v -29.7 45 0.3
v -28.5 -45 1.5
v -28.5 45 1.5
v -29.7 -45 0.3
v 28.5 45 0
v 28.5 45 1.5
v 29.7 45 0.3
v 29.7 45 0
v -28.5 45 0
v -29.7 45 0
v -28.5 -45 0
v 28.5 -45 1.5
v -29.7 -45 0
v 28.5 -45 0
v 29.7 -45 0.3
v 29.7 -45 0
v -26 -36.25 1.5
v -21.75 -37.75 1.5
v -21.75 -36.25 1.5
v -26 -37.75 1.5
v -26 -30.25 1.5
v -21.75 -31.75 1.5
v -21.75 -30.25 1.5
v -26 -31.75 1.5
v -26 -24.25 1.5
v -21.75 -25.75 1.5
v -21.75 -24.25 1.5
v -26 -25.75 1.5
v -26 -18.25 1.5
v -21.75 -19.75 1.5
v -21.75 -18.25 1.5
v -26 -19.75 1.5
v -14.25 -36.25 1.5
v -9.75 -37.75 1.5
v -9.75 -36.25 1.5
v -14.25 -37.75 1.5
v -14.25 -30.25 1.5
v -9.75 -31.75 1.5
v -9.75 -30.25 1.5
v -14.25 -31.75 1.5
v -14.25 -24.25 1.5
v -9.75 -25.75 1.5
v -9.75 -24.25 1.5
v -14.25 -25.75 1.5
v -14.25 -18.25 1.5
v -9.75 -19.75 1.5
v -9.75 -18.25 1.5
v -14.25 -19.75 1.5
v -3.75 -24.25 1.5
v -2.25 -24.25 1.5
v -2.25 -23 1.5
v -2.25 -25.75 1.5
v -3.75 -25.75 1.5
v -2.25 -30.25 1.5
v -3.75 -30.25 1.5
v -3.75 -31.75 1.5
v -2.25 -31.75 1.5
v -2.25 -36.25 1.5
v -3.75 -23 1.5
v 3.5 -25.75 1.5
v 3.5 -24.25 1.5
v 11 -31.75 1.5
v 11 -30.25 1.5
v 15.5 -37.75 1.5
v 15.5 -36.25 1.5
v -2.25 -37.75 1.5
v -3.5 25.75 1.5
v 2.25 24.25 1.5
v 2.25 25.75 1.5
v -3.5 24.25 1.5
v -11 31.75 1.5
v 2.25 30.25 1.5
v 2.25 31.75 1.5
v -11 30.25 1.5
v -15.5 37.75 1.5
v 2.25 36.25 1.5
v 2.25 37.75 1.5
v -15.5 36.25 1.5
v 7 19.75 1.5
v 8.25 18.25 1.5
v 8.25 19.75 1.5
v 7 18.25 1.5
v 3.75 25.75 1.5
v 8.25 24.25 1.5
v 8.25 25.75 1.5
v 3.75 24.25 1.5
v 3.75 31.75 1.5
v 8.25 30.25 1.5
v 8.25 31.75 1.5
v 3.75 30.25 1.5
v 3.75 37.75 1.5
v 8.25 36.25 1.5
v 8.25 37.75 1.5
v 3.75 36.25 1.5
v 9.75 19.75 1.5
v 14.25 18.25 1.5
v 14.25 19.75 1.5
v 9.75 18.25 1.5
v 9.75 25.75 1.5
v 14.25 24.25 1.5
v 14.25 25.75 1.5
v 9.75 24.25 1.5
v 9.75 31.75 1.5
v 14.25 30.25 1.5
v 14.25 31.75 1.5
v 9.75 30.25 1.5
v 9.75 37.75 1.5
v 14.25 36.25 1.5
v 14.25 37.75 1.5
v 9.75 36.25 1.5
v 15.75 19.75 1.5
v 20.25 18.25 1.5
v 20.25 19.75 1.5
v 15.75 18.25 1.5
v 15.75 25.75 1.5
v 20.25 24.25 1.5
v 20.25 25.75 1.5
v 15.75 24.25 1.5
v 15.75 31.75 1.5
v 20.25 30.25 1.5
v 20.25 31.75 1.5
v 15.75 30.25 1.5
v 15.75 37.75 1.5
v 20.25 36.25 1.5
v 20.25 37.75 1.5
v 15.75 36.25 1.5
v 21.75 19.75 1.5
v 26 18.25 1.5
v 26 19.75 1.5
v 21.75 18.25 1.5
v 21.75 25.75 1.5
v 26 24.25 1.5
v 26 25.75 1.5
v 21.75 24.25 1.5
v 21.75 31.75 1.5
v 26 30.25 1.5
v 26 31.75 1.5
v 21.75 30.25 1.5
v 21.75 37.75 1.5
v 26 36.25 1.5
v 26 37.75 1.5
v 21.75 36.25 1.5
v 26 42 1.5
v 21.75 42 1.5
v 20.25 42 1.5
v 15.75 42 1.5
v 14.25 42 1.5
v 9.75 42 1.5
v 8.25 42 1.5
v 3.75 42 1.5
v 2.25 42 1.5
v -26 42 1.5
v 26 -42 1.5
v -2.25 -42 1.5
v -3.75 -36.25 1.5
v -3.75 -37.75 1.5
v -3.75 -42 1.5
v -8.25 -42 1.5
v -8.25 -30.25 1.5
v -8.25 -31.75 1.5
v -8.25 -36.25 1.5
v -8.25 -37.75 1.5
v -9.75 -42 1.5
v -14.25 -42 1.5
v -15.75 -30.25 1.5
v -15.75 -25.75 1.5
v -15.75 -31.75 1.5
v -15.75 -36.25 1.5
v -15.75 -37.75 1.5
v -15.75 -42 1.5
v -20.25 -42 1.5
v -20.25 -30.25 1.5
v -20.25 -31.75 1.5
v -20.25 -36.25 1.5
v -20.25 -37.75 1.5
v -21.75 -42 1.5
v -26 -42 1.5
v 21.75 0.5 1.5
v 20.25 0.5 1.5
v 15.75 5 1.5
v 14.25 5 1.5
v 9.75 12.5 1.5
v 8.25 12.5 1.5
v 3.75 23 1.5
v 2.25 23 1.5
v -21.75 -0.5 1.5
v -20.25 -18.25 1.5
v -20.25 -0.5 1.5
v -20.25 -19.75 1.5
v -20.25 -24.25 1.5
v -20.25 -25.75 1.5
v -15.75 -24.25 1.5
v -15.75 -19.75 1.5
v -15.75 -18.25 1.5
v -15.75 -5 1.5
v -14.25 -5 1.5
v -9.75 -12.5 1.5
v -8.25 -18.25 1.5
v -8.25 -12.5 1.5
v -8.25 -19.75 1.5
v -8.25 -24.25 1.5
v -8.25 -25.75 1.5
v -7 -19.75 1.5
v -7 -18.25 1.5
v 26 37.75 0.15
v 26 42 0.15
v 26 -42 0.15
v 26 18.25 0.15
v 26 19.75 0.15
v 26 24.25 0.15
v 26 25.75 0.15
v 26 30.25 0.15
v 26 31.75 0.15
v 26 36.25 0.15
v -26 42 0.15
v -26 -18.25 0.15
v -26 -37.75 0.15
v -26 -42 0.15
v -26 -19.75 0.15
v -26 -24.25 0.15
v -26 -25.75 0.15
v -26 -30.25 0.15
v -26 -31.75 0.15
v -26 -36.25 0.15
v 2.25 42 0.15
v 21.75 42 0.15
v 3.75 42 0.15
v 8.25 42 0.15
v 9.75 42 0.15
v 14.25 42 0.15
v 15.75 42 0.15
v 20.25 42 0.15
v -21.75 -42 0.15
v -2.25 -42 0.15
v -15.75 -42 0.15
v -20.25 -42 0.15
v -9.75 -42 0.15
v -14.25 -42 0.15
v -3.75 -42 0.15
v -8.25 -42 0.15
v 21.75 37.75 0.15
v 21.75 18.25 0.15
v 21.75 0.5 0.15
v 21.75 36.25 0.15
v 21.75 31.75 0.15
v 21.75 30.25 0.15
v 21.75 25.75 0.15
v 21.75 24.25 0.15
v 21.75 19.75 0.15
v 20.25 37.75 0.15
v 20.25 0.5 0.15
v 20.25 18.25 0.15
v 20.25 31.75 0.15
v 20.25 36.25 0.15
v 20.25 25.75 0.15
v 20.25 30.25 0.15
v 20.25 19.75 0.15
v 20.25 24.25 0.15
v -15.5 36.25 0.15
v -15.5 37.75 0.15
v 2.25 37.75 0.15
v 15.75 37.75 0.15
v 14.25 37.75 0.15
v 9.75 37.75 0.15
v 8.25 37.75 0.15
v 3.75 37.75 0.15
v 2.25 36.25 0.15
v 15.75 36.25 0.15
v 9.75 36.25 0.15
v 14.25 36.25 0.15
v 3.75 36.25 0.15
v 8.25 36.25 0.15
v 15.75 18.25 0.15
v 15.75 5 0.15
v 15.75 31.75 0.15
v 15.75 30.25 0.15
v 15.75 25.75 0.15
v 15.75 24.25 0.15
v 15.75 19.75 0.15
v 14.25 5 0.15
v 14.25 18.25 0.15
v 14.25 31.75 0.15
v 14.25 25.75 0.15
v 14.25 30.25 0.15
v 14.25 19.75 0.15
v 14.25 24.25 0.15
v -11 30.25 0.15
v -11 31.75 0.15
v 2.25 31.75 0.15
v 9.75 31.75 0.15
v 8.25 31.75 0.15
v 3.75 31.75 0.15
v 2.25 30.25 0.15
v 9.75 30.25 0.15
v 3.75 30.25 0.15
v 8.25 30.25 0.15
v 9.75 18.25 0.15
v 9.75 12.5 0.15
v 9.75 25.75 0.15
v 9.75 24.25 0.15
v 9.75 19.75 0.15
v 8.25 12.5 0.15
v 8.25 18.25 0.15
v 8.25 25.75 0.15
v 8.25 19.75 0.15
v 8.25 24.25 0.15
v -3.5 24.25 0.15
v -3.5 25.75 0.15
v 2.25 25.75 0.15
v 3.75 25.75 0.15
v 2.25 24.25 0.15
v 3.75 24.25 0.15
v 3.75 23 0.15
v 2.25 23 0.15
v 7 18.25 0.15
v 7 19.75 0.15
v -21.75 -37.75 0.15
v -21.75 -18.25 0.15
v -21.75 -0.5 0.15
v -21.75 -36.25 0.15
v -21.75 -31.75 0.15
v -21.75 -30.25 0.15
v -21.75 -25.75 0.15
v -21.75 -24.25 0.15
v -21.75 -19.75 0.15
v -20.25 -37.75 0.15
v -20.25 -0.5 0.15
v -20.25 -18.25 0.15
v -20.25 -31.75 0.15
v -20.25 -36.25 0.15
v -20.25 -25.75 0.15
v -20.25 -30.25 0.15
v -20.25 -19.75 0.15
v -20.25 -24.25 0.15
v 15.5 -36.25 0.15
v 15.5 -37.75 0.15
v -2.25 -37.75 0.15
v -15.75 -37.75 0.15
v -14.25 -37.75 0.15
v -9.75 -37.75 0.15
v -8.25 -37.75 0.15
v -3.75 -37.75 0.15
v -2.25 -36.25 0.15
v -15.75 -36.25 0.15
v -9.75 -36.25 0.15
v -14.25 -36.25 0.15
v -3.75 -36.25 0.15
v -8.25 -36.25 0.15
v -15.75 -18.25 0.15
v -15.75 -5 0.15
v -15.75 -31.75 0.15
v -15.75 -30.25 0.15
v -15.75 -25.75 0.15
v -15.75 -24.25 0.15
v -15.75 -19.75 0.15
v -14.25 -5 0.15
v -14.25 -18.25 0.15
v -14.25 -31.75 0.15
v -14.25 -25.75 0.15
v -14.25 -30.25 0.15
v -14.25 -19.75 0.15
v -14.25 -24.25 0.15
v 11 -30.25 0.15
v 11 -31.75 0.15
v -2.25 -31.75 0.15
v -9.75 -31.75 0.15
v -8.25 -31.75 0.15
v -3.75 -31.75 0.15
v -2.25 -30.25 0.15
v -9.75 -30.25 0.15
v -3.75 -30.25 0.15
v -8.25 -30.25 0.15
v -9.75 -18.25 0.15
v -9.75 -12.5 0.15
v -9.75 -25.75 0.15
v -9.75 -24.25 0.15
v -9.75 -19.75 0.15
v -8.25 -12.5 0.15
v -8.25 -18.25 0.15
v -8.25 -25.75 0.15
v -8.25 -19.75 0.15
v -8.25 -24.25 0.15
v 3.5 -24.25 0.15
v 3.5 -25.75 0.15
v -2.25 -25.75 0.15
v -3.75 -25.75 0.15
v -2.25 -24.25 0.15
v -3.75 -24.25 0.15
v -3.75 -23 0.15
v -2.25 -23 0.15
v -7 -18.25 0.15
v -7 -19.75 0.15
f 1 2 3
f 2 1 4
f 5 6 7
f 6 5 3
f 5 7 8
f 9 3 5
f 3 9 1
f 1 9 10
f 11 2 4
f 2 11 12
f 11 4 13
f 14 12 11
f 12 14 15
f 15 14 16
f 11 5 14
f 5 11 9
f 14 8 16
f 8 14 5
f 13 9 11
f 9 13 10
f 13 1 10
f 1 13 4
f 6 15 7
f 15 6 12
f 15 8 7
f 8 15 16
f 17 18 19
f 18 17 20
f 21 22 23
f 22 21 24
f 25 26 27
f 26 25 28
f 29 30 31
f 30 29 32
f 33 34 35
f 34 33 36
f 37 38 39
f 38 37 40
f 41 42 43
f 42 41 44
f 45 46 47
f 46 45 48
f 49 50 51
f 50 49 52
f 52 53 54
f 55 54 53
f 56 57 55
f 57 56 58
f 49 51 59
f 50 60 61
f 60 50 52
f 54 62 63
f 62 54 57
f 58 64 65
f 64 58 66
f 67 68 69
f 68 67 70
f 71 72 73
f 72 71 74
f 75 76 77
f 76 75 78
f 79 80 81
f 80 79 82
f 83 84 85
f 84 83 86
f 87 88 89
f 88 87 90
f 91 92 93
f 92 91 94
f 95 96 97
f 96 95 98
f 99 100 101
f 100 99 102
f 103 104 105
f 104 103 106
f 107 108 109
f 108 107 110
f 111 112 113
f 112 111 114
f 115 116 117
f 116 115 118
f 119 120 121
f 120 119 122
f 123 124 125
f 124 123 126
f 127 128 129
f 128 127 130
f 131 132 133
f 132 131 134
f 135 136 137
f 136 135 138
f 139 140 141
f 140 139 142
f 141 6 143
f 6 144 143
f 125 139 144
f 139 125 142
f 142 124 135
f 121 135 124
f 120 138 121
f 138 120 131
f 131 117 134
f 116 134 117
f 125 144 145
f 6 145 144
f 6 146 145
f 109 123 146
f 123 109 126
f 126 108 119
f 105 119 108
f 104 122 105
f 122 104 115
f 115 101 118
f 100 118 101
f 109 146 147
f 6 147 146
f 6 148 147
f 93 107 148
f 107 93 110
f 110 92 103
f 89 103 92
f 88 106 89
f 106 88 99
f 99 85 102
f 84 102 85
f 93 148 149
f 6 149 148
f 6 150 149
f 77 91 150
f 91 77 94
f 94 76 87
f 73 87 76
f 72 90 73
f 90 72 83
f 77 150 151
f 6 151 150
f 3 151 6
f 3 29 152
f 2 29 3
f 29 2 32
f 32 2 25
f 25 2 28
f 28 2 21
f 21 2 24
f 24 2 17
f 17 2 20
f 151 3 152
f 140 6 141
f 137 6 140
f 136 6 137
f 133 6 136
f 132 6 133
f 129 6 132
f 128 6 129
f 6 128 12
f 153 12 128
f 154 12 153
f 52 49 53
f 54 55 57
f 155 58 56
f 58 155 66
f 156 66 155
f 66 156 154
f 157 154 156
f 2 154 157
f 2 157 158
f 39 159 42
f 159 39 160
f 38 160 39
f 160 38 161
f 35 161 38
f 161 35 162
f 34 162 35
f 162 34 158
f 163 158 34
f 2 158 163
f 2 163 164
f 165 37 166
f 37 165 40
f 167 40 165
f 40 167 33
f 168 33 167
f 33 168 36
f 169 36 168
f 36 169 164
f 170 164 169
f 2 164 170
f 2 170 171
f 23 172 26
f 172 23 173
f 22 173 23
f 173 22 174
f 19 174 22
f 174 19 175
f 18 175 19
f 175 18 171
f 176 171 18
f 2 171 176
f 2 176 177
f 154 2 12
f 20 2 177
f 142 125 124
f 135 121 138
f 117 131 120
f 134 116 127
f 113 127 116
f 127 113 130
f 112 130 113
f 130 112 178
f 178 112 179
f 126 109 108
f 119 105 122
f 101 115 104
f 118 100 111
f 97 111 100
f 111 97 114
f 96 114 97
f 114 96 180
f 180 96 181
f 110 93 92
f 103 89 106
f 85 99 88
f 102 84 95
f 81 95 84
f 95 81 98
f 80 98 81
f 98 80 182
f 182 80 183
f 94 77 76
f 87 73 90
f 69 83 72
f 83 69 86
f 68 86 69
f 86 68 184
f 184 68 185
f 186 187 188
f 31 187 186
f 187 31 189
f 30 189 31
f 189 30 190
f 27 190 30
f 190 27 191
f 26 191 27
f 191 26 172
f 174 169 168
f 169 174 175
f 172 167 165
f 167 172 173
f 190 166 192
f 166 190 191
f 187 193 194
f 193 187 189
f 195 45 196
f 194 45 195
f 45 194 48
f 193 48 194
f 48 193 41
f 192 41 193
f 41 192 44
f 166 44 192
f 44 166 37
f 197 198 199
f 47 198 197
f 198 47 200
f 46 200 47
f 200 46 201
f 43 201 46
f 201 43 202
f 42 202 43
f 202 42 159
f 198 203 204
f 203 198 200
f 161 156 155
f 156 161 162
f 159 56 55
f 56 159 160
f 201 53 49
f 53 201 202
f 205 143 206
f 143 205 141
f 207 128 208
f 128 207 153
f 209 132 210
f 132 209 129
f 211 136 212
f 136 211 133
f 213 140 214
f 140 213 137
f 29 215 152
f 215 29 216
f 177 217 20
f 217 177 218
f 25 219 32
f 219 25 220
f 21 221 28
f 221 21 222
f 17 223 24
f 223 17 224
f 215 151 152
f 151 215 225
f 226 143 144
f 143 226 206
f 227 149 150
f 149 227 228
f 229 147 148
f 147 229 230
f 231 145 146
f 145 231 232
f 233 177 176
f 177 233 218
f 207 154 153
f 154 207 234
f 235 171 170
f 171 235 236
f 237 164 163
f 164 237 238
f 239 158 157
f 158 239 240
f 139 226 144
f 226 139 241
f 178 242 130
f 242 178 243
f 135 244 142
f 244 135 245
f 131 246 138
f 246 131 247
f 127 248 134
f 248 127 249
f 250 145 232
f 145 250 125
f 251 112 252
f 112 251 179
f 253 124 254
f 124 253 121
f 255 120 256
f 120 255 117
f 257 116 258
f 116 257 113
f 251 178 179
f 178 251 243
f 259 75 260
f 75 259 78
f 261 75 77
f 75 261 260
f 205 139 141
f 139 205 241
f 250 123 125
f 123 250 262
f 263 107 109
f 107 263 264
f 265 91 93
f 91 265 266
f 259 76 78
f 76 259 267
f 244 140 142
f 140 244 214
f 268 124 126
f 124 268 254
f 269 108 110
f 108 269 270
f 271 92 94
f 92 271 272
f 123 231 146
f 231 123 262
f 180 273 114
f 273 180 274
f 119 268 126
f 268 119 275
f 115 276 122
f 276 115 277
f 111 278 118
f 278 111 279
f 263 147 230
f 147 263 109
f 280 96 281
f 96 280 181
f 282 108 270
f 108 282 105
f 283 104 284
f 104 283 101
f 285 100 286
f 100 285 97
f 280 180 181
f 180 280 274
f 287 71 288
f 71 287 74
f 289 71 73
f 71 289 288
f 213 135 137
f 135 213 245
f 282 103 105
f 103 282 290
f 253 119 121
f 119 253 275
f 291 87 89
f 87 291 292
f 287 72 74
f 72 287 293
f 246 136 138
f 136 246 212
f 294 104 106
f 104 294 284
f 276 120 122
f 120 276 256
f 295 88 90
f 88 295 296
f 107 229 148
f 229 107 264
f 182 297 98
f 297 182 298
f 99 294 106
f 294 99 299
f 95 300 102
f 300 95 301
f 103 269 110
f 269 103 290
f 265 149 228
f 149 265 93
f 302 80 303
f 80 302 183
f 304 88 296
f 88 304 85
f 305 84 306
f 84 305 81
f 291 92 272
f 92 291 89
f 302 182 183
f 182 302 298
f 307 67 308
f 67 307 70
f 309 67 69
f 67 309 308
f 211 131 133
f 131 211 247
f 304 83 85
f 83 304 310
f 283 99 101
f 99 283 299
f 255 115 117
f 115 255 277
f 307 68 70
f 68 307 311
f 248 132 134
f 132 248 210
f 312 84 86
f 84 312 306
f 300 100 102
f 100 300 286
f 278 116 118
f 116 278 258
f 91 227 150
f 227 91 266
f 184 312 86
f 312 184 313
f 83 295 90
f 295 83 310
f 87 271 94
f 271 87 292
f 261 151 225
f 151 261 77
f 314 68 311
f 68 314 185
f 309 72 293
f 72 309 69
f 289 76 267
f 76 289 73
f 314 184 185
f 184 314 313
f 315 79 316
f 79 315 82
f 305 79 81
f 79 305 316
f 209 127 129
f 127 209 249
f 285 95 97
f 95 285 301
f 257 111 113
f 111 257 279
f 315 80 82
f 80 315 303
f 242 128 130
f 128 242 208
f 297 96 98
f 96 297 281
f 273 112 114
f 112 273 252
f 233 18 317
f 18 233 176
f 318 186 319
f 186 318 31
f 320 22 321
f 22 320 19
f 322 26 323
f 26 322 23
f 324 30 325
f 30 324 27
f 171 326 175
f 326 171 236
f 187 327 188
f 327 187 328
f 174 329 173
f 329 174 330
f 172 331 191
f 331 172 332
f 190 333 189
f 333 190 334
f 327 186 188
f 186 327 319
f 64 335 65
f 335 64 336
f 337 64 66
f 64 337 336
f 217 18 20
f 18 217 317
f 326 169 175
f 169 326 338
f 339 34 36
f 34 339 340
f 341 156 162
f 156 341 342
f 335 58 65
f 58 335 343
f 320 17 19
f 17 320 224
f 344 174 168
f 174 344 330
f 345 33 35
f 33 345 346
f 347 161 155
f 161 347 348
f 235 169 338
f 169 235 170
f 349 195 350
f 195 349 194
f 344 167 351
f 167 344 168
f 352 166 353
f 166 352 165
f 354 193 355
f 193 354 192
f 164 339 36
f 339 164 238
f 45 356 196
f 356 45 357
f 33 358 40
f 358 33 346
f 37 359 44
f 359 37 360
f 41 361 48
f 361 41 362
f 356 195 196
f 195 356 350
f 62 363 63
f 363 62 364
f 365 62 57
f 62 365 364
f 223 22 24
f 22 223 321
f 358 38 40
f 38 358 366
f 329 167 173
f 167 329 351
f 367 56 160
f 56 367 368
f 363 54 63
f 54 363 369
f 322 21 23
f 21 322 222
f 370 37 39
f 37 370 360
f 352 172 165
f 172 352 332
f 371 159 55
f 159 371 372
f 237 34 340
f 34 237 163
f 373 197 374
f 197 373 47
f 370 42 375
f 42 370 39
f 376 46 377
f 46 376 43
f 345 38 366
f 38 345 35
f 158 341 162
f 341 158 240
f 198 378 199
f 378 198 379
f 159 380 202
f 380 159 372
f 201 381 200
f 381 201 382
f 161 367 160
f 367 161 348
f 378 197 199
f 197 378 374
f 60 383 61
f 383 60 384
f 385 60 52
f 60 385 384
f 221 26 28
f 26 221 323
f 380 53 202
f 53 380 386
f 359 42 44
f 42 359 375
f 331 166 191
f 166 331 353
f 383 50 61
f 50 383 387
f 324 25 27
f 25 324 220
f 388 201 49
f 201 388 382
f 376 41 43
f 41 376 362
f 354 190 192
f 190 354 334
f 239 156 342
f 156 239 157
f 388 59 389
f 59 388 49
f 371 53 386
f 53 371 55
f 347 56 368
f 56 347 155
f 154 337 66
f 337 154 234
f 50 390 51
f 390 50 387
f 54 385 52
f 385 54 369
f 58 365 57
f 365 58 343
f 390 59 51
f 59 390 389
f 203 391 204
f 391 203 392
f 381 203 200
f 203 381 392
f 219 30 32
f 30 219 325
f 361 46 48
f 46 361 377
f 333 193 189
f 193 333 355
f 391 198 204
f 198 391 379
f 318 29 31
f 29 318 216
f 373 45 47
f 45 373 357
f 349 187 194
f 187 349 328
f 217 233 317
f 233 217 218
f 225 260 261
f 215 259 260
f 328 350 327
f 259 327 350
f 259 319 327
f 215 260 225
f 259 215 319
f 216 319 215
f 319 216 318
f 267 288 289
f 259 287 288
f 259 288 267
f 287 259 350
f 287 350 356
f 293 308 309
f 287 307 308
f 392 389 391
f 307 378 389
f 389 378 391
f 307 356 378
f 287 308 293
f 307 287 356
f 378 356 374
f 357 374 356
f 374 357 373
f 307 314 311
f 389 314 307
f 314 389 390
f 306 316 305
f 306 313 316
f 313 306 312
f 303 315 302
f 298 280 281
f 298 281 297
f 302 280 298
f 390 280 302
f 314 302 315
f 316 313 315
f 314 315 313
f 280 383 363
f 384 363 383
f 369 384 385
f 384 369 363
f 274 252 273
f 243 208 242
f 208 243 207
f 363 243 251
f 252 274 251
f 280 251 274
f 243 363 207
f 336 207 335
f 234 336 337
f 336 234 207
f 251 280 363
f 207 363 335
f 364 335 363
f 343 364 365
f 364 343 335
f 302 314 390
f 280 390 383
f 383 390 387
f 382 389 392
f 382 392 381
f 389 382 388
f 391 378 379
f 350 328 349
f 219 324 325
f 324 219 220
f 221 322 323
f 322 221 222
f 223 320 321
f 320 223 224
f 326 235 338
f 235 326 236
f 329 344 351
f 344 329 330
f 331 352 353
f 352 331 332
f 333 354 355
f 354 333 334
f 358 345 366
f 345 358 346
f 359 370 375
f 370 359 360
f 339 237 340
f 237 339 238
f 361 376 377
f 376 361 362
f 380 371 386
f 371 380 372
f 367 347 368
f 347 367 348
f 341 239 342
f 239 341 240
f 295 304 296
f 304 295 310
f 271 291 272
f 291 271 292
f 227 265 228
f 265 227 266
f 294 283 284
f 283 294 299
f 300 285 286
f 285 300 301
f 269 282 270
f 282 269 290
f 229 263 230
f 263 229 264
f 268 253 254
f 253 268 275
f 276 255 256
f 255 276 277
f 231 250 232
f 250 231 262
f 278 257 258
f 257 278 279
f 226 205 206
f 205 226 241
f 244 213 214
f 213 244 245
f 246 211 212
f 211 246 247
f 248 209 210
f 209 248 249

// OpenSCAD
W=64;
W2=100;
H=90;
T=1.5;
B=4;
Q=7;
H1=7;
HR=12;

color("white")
backing();
color("brown")
theactualpanel();

module backing() {
    cube_center([W-H1,H,0.15]);
}

module theactualpanel() {
    
    // the pointed edges that go into groove
    for(s=[-1:2:1])
        scale([s,1,1])
        translate([(W-H1)/2,0,])
        difference() {
            rotate([0,45,0])
            cube([1.5*sqrt(2),H,1.5*sqrt(2)],center=true);
            translate([0,0,-1.5])
            cube([3,H+1,3],center=true);
            translate([2.7,0,0])
            cube([3,H+1,3],center=true);
            translate([-2.7,0,0])
            cube([3,H+1,3],center=true);
    }
    
    intersection() {
        // clips the following to dimensions just in case
        cube_center([W-H1,H,1.5]);
        // of this:
        union() {
            // border
            difference() {
                cube_center([W,H,1.5]);
                translate([0,0,-1])
                cube_center([W-3*B,H-1.5*B,10]);
            }
            
            Q = 6;
            
            for(a=[0,180])
            rotate([0,0,a])
            for(i=[1:4]) {
                translate([W/2-B-1-i*Q,H-B-2*Q-(5-i*i/4)*Q,0])
                cube_center([T,H,1.5]);
                        
                translate([W-B-3-2*Q-(5-i*i/4)*Q,H/2-B/2-i*Q,0])
                cube_center([W,T,1.5]); 
            }
            
        }
    }
}

module cube_center(dims,r=0) {
    if(r==0) {
        translate([-dims[0]/2, -dims[1]/2, 0])
        cube(dims);
    } else {
        
        minkowski() {
            translate([-dims[0]/2+r, -dims[1]/2+r, 0])
            cube([dims[0]-2*r,dims[1]-2*r,dims[2]]);
            cylinder(r=r,h=0.00001,$fn=32);
        }
    }
}
